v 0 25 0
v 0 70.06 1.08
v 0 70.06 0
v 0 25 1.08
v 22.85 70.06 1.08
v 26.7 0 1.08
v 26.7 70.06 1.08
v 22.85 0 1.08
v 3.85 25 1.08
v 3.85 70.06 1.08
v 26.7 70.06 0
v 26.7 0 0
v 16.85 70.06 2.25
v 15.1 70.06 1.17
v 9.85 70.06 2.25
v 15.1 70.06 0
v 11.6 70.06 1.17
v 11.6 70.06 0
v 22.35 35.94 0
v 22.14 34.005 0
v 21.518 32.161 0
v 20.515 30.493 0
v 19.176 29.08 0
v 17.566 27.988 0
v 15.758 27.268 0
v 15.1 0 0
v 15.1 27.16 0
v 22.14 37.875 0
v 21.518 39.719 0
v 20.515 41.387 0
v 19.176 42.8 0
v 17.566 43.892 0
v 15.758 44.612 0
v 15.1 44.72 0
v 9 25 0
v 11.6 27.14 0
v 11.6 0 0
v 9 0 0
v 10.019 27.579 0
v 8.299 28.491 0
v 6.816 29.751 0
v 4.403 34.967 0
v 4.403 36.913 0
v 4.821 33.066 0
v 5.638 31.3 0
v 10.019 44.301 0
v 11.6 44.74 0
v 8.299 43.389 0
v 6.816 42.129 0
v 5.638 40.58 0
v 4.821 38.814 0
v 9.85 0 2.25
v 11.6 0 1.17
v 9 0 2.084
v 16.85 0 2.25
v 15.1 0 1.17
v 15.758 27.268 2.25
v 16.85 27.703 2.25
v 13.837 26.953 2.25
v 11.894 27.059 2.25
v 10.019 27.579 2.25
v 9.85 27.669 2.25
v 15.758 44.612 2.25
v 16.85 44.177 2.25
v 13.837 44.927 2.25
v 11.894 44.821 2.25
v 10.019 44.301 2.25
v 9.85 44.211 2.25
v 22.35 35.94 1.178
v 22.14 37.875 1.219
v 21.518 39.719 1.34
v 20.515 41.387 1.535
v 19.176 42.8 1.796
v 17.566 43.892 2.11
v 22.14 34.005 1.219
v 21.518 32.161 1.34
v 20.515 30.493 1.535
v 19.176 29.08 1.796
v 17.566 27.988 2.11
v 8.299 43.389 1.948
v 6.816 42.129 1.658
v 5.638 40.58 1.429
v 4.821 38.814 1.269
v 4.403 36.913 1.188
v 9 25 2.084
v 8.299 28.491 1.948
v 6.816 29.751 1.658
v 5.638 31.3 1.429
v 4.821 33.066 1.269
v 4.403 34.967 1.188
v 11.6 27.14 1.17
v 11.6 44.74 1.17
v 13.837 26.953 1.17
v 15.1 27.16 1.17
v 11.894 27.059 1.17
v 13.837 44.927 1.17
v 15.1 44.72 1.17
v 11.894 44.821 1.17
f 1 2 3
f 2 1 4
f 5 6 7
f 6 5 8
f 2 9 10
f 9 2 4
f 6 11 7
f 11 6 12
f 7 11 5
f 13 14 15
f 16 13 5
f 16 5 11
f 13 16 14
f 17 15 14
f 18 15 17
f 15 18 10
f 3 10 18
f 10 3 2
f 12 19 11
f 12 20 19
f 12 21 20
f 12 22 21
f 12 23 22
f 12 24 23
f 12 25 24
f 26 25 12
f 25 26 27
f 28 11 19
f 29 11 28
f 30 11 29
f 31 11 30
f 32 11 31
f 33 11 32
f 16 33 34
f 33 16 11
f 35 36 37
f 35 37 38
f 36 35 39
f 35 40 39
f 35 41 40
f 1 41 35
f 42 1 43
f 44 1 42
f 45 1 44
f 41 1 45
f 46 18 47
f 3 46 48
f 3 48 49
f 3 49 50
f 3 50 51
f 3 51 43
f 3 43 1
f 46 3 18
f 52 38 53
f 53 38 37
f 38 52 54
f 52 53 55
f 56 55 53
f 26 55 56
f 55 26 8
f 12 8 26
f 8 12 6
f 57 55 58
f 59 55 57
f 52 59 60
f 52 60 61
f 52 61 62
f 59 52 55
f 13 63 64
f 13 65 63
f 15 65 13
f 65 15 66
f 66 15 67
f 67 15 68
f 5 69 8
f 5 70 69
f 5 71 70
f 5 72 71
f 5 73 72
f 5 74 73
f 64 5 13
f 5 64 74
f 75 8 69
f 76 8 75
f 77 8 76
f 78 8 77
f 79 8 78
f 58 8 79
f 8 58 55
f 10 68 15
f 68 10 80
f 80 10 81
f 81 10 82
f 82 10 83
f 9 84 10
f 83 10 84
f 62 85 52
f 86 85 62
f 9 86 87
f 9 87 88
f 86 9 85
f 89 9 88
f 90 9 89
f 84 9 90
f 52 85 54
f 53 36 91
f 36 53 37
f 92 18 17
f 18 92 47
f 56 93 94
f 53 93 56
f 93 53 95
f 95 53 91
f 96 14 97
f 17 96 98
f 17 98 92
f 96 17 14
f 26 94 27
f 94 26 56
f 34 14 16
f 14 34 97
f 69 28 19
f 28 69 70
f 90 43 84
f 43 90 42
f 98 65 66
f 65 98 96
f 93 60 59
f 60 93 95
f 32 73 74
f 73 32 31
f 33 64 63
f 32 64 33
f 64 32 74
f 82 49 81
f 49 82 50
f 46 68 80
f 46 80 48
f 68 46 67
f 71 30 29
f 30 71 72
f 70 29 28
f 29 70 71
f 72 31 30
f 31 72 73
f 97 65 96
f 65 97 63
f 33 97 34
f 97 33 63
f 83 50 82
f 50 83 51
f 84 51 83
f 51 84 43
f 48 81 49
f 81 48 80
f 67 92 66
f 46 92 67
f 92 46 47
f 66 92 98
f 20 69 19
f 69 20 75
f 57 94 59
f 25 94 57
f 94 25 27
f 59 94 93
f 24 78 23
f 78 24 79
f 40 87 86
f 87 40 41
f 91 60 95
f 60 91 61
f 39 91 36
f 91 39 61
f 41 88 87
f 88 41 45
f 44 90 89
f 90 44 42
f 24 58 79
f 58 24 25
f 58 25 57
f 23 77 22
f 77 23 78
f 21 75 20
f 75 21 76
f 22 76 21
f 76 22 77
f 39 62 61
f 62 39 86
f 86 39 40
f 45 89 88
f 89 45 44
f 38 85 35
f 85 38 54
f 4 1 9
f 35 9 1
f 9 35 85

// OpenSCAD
/* Diffuser Lense For A Particular Project (OpenSCAD) */
tol = 0.8;

/* LED PCB */
ledpcbw = 26.7;
ledpcbh = 71.88;
ledpcb_thickness = 3.47;
ledpcb_header_pos = 25;
ledpcb_header_w = 9;
holedia = 16 + 2;

/* Diffuser */
diffuserw=ledpcbw;
diffuserh=ledpcbh-1.82;
thickness=ledpcb_thickness-1.59 - tol;

/* Enclosure hole */
enclosurew = 19;

/* SMD LED */
ledh = 2.76-1.59;
ledw = 3.5;

// Use if not printing with raft
//cube([ledpcb_header_w,ledpcb_header_pos, 0.1]);

difference()
{
  union()
  {
    cube([diffuserw,diffuserh,thickness]);
    hull()
    {
      translate([(diffuserw - enclosurew)/2,0,0])
        cube([enclosurew,diffuserh,thickness]);
      translate([ledpcbw/2 - ledw,0,thickness])
        cube([ledw*2,diffuserh,ledh]);
    }
  }
  
  translate([ledpcbw/2 - ledw/2,0,0])
    cube([ledw,ledpcbh,ledh]);

  translate([ledpcbw/2,ledpcbh/2,-thickness/2])
    cylinder(thickness*3,d=holedia);

  translate([0,0,-thickness/2])
    cube([ledpcb_header_w,ledpcb_header_pos,thickness*3]);
}
